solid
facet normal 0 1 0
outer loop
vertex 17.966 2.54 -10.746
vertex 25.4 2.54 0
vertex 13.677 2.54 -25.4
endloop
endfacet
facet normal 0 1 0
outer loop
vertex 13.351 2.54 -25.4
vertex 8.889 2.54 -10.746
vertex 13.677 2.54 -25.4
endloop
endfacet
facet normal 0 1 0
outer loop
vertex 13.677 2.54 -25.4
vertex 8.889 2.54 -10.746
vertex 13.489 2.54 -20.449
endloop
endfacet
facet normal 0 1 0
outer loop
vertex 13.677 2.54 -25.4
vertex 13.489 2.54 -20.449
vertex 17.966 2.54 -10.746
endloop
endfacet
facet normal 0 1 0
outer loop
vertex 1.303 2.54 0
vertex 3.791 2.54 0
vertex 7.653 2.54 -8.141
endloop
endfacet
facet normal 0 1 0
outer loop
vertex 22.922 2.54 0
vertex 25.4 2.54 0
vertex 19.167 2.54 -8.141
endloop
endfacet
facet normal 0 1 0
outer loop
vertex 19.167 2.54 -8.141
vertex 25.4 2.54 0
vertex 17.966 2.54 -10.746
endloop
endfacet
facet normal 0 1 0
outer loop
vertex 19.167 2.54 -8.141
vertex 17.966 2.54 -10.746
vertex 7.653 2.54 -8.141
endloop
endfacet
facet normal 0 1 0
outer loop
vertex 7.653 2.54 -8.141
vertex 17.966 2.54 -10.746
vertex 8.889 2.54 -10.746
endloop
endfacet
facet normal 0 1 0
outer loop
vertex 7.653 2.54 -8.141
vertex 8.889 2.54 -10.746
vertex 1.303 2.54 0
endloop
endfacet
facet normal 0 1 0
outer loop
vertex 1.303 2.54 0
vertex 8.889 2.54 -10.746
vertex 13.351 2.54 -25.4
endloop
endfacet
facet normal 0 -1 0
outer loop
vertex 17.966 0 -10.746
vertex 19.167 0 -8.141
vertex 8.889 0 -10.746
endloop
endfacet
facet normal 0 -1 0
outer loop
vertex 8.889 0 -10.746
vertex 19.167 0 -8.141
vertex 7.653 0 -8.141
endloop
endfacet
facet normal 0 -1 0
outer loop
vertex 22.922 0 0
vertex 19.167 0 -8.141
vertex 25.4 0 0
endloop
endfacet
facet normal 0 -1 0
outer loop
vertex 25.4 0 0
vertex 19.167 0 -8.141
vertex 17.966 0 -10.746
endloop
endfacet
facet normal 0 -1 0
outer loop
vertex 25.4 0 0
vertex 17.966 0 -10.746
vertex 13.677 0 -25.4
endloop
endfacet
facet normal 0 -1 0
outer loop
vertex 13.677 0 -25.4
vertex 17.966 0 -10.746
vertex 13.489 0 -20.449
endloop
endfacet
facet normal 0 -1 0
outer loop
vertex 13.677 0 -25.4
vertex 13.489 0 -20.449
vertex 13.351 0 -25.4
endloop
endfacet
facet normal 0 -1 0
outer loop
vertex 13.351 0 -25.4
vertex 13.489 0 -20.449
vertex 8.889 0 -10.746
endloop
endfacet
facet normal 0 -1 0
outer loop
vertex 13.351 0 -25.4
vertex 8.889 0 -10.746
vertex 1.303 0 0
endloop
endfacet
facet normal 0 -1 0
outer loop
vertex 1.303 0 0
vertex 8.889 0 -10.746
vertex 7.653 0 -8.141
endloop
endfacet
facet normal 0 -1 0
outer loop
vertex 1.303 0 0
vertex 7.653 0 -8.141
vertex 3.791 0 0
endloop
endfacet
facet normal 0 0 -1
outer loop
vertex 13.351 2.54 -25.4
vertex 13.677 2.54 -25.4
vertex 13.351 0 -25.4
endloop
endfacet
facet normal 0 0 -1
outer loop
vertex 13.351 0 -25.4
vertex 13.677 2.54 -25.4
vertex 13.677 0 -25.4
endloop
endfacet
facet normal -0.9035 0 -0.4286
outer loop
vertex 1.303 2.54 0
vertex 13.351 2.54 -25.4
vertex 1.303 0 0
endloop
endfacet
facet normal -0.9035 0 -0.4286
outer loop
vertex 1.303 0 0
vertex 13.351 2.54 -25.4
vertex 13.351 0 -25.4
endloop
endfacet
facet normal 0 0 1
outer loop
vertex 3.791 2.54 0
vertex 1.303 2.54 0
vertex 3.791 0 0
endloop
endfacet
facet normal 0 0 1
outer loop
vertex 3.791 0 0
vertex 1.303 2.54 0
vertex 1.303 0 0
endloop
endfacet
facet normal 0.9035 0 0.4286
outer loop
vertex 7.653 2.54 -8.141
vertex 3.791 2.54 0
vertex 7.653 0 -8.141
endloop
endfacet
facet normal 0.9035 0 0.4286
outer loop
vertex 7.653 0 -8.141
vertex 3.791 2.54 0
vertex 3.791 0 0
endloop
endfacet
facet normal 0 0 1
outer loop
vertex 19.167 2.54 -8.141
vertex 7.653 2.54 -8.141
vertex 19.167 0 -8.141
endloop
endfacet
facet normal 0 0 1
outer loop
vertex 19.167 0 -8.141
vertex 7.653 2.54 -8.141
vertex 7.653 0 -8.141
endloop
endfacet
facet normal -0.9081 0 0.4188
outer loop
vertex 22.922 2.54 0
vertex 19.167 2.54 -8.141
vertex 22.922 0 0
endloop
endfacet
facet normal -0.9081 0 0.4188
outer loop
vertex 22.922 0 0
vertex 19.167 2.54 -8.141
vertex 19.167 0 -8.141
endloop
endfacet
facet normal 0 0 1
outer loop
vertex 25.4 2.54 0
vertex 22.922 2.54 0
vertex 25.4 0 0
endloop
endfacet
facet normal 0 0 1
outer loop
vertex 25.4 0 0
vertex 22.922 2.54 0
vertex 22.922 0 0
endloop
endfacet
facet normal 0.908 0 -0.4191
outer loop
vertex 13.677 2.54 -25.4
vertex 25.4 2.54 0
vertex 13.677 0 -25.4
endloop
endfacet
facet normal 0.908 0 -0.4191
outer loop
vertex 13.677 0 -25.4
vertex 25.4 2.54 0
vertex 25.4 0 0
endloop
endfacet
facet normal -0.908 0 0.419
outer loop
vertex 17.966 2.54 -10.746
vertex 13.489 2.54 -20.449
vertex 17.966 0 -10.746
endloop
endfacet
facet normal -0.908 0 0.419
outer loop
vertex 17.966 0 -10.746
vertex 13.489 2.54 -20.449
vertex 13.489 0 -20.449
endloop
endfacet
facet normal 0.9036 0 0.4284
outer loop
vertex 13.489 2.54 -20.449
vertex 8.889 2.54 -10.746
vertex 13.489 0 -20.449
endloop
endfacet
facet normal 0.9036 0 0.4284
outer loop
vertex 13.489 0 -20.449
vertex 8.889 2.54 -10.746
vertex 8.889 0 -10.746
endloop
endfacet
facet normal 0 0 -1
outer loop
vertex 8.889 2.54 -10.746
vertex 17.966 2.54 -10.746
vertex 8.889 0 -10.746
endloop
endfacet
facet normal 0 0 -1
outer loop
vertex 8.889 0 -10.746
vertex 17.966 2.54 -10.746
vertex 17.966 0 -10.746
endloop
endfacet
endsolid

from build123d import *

# Parameters (mm, degrees)
BOSS_EXTRUDE2_DEPTH = 2.54


with BuildPart() as part:
    # Sketch3 → Boss-Extrude2 (new body)
    with BuildSketch(Plane(origin=(0, 0, 0), x_dir=(1, 0, 0), z_dir=(0, 1, 0))):
        Polygon((13.676923077, 25.4), (25.4, 0), (22.922075321, 0), (19.167027244, 8.141025641), (7.652564103, 8.141025641), (3.790665064, 0), (1.302564103, 0), (13.351282051, 25.4), align=None)
        Polygon((13.488661859, 20.449238782), (8.888982372, 10.746153846), (17.966225962, 10.746153846), align=None, mode=Mode.SUBTRACT)
    extrude(amount=BOSS_EXTRUDE2_DEPTH)


solid = part.part
